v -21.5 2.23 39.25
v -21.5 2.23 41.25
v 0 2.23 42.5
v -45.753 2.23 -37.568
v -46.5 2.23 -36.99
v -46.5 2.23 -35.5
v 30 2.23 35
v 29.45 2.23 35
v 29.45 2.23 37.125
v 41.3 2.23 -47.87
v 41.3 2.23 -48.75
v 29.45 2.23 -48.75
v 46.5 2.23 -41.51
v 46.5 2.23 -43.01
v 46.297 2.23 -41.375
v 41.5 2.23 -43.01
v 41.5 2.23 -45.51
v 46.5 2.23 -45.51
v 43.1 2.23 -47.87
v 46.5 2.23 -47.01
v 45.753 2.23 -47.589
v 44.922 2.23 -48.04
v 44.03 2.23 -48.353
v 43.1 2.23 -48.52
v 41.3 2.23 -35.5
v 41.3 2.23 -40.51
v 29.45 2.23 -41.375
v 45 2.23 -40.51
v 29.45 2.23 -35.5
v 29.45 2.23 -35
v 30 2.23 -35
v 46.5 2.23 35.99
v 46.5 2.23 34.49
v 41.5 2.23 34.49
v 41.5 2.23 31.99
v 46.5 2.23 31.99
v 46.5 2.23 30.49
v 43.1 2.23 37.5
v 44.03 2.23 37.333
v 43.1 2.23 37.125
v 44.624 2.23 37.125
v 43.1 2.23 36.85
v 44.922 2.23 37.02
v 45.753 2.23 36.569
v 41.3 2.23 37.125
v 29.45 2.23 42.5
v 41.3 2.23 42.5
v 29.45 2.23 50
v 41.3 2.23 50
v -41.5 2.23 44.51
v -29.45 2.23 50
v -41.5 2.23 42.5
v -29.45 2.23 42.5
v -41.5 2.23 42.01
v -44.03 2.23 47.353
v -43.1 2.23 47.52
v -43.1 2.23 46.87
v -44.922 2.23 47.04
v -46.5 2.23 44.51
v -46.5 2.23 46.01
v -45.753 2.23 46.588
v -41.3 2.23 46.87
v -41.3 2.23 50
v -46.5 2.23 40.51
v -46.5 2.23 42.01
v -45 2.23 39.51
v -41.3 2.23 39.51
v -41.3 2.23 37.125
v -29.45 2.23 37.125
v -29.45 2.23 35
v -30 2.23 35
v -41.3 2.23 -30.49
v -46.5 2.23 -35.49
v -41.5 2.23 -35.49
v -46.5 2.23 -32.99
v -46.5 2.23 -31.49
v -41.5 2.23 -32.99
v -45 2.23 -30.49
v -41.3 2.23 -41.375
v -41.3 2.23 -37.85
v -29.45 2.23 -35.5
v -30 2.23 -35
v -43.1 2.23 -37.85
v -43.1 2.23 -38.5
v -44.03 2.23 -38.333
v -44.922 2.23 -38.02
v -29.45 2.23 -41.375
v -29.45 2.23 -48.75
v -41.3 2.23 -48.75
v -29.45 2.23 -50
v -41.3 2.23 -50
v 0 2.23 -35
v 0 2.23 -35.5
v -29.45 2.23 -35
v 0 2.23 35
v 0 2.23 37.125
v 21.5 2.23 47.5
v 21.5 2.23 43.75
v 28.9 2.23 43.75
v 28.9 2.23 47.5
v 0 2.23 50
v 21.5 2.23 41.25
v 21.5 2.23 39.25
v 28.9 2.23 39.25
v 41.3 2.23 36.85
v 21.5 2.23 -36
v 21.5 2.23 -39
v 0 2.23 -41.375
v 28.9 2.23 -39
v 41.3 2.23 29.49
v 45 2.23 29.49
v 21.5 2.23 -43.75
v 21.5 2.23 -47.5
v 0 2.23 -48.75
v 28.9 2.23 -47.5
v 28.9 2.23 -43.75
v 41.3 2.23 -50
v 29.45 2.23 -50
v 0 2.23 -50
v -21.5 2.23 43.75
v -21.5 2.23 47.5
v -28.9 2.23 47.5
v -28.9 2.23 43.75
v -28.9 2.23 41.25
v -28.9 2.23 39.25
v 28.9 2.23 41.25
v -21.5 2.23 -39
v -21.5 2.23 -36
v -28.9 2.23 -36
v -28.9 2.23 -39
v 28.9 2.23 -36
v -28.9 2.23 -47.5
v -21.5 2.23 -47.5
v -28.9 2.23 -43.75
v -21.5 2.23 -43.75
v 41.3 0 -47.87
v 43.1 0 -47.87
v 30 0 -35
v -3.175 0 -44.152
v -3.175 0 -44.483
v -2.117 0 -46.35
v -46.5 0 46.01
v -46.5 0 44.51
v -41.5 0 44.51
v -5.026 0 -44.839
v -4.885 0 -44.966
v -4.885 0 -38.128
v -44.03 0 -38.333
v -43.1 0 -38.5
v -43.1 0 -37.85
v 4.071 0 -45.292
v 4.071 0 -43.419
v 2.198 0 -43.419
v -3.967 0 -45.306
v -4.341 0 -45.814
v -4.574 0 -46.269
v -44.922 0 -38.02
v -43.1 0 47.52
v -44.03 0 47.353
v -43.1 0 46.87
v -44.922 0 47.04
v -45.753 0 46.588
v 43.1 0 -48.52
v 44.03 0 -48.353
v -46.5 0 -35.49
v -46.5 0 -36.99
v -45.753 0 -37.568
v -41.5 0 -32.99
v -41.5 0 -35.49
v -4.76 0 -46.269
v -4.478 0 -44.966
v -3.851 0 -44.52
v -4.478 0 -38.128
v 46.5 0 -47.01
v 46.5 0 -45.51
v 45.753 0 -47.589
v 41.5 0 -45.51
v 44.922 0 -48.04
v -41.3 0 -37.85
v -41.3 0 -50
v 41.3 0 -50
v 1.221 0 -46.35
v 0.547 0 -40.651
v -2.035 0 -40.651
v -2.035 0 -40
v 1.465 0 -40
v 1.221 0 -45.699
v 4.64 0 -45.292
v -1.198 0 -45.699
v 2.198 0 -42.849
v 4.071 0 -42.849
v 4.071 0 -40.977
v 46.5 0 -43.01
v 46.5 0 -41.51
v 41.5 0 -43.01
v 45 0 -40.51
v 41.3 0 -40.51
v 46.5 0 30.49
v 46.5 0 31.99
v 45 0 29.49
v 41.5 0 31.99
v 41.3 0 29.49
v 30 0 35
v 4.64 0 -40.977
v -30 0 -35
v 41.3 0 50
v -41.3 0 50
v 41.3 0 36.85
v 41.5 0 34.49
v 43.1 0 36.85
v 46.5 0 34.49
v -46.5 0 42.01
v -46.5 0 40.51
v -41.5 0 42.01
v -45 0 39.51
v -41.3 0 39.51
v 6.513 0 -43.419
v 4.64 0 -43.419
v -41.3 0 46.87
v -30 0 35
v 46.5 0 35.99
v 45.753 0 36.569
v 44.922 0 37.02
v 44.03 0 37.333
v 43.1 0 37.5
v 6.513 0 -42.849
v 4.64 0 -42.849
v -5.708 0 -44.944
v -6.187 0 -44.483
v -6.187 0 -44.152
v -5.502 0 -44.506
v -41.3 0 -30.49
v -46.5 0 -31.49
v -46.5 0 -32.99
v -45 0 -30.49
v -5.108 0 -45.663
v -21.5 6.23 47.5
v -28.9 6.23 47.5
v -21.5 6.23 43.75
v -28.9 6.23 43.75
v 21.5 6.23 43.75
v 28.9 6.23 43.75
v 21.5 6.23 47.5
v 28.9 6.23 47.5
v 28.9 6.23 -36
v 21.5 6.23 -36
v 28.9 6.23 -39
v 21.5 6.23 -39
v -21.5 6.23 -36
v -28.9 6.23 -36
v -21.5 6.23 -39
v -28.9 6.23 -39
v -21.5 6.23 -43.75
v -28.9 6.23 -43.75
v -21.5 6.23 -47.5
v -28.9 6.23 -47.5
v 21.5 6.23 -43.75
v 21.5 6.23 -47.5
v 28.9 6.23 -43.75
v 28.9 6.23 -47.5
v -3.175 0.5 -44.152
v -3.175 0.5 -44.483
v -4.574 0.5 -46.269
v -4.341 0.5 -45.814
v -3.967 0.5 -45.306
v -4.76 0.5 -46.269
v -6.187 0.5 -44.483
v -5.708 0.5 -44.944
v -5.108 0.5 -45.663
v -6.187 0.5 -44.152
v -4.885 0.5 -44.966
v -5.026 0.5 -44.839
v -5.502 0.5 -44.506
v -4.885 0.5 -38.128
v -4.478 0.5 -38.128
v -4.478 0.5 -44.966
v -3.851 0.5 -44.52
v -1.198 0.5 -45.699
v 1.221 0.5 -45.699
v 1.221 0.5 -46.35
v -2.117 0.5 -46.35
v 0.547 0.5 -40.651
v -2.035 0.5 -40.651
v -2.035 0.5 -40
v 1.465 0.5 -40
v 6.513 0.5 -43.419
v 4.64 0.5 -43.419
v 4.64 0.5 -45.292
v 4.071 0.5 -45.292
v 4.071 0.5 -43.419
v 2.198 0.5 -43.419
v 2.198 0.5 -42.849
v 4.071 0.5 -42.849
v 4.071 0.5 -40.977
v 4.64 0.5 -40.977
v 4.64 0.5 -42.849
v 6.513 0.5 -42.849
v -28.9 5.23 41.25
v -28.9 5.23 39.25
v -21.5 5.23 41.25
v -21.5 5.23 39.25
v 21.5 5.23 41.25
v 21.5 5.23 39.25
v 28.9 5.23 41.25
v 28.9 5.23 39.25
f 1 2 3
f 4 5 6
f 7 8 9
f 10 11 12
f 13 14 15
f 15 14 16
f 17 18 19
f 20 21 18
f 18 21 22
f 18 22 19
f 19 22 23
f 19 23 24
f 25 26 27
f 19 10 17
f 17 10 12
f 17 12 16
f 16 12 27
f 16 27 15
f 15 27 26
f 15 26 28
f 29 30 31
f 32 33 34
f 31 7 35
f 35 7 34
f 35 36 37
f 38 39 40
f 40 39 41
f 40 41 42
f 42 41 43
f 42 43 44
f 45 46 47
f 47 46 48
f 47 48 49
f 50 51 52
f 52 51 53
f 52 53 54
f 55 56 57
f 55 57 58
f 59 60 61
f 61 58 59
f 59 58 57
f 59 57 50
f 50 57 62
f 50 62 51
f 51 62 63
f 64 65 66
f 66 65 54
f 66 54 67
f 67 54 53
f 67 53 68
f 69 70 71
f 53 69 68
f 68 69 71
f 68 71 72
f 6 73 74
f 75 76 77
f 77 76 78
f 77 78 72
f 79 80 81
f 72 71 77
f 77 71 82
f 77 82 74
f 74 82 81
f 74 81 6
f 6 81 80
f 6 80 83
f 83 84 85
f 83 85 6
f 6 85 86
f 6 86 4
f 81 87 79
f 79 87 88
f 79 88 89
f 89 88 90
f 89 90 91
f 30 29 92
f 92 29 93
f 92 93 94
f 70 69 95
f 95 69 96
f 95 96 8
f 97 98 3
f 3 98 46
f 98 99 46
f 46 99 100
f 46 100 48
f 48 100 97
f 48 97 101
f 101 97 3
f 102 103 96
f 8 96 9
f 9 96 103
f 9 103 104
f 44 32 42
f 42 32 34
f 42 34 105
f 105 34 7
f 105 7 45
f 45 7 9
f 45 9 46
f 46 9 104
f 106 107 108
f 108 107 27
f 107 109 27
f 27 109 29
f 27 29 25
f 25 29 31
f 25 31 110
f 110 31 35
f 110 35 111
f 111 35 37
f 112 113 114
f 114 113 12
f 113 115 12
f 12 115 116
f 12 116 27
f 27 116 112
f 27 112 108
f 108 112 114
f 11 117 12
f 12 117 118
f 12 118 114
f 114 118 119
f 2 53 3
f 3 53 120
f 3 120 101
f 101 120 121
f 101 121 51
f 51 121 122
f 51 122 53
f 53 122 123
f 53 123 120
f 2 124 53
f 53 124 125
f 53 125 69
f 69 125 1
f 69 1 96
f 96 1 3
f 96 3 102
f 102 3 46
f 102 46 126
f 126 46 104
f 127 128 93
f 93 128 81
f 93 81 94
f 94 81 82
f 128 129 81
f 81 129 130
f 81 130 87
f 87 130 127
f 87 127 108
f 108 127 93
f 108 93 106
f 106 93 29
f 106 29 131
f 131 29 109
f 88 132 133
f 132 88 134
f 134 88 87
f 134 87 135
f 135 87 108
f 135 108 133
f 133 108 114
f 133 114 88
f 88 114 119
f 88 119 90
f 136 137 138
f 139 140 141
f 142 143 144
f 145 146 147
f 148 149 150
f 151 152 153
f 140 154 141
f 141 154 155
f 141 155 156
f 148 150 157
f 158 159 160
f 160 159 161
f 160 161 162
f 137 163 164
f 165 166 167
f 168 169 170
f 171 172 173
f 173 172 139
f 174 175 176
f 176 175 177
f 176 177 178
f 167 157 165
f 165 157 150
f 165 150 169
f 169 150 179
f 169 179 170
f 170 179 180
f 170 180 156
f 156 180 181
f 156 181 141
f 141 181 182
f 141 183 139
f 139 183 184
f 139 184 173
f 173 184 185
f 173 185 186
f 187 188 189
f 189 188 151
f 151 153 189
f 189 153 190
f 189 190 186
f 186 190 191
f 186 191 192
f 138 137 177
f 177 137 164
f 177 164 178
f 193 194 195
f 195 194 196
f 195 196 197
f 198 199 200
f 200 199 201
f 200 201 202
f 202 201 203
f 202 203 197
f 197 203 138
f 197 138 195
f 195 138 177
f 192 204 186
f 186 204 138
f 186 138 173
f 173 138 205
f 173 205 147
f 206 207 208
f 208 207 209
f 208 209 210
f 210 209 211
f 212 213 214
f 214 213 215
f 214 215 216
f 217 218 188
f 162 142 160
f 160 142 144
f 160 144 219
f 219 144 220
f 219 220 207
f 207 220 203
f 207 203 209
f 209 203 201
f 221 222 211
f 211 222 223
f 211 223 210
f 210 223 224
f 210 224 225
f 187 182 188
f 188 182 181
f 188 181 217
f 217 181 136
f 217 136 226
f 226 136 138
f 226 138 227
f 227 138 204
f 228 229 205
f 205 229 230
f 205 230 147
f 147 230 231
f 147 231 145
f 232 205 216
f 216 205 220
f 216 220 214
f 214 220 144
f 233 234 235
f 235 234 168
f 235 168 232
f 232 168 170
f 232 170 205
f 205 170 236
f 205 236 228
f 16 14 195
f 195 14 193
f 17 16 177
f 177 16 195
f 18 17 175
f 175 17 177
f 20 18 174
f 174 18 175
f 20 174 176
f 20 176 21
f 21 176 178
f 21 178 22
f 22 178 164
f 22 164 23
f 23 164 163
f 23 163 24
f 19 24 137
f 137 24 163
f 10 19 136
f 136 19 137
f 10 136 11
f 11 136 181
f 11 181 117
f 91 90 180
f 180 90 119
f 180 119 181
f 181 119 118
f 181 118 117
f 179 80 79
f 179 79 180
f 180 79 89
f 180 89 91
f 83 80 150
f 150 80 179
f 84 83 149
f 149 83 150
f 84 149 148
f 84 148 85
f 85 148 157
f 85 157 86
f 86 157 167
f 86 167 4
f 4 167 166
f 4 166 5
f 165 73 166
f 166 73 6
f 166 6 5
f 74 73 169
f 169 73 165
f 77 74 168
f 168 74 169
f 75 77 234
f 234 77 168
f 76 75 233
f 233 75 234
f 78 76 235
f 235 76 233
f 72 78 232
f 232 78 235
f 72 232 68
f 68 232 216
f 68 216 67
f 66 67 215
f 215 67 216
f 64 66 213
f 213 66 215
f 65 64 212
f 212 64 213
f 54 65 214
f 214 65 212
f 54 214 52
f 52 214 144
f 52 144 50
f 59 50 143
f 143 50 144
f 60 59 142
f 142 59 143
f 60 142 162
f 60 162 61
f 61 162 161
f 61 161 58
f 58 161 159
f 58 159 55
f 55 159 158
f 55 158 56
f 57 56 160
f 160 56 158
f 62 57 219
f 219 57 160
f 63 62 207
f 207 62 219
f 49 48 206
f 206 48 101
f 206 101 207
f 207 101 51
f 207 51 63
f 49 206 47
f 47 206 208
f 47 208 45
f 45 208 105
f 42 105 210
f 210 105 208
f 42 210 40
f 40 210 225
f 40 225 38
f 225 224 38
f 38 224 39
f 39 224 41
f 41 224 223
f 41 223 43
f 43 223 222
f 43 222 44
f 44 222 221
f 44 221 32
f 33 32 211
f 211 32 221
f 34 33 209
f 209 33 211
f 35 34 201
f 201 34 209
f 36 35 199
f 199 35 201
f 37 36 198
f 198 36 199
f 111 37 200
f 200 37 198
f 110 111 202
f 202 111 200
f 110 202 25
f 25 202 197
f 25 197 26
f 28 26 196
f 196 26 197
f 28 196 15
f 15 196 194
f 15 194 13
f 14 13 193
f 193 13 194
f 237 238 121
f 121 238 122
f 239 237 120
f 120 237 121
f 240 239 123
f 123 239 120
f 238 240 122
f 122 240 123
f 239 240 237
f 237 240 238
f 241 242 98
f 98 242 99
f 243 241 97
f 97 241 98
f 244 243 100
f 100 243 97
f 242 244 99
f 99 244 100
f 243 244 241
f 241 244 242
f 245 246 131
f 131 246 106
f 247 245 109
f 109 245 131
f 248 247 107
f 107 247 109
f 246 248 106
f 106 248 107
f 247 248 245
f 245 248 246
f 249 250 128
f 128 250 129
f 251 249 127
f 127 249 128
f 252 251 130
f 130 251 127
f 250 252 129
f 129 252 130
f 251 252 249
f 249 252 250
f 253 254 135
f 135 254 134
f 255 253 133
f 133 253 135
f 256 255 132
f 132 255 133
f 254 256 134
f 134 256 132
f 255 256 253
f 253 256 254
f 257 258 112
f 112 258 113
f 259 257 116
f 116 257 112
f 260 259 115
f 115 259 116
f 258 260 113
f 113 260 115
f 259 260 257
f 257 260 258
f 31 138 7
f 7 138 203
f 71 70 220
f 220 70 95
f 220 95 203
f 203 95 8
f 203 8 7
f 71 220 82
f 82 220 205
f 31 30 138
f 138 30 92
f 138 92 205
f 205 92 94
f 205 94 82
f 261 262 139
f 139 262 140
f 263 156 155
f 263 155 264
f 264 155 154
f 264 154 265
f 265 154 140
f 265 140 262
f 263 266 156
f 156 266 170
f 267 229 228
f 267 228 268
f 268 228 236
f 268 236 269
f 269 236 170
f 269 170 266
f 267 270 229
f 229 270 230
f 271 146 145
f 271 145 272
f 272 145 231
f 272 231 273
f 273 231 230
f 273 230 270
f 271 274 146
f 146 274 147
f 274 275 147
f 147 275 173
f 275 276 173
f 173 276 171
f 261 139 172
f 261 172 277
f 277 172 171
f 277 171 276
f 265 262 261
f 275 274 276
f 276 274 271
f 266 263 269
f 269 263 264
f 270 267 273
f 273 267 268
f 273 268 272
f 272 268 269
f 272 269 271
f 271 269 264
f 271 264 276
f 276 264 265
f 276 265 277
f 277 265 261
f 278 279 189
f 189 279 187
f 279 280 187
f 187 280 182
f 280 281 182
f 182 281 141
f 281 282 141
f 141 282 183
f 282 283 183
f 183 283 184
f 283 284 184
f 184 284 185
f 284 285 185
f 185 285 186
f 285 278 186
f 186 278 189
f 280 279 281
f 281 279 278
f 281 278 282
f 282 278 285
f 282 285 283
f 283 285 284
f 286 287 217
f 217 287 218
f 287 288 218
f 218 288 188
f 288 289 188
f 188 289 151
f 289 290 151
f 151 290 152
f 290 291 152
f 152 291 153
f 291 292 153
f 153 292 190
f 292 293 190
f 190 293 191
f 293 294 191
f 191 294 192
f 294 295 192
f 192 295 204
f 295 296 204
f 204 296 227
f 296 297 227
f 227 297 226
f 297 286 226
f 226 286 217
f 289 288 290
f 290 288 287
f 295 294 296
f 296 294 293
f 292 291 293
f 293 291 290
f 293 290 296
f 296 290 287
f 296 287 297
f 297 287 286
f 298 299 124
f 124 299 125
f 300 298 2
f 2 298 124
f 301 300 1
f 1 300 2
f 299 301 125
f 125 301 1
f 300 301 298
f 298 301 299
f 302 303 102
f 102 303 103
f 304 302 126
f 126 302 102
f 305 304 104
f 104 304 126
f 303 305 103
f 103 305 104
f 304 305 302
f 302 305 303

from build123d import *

# Parameters (mm, degrees)
SKETCH1_W           = 0.2
SKETCH1_H           = 2.5
SKETCH1_W_2         = 82.6
SKETCH1_H_2         = 100
BOSS_EXTRUDE1_DEPTH = 2.23
SKETCH2_W           = 7.4
SKETCH2_H           = 3.75
SKETCH2_H_2         = 3
BOSS_EXTRUDE2_DEPTH = 4
SKETCH3_W           = 60
SKETCH3_H           = 70
CUT_EXTRUDE1_DEPTH  = 10
CUT_EXTRUDE2_DEPTH  = 0.5
SKETCH5_W           = 7.4
SKETCH5_H           = 2
BOSS_EXTRUDE3_DEPTH = 3


with BuildPart() as part:
    # Sketch1 → Boss-Extrude1 (new body)
    with BuildSketch(Plane(origin=(0, 0, 0), x_dir=(1, 0, 0), z_dir=(0, 1, 0))):
        with BuildLine():
            Line((43.1, -36.85), (43.1, -37.5))
            ThreePointArc((43.1, -37.5), (44.922195524, -37.020142239), (46.5, -35.99))
            Line((46.5, -35.99), (46.5, -34.49))
            Line((46.5, -34.49), (43.1, -34.49))
            Line((43.1, -34.49), (43.1, -36.85))
        make_face()
        Polygon((41.5, -34.49), (41.3, -34.49), (41.3, -36.85), (43.1, -36.85), (43.1, -34.49), align=None)
        Polygon((45, -29.49), (41.3, -29.49), (41.3, -31.99), (41.5, -31.99), (46.5, -31.99), (46.5, -30.49), align=None)
        with Locations((41.4, -33.24)):
            Rectangle(SKETCH1_W, SKETCH1_H)
        Rectangle(SKETCH1_W_2, SKETCH1_H_2)
        Polygon((46.5, 43.01), (41.5, 43.01), (41.3, 43.01), (41.3, 40.51), (45, 40.51), (46.5, 41.51), align=None)
        with Locations((41.4, 44.26)):
            Rectangle(SKETCH1_W, SKETCH1_H)
        Polygon((41.5, 45.51), (43.1, 45.51), (43.1, 47.87), (41.3, 47.87), (41.3, 45.51), align=None)
        with BuildLine():
            ThreePointArc((43.1, 48.52), (44.922195524, 48.040142239), (46.5, 47.01))
            Line((46.5, 47.01), (46.5, 45.51))
            Line((46.5, 45.51), (43.1, 45.51))
            Line((43.1, 45.51), (43.1, 47.87))
            Line((43.1, 47.87), (43.1, 48.52))
        make_face()
        with BuildLine():
            Line((-43.1, -46.87), (-41.3, -46.87))
            Line((-41.3, -46.87), (-41.3, -44.51))
            Line((-41.3, -44.51), (-41.5, -44.51))
            Line((-41.5, -44.51), (-46.5, -44.51))
            Line((-46.5, -44.51), (-46.5, -46.01))
            ThreePointArc((-46.5, -46.01), (-44.922195524, -47.040142239), (-43.1, -47.52))
            Line((-43.1, -47.52), (-43.1, -46.87))
        make_face()
        Polygon((-41.3, -44.51), (-41.3, -39.51), (-45, -39.51), (-46.5, -40.51), (-46.5, -42.01), (-41.5, -42.01), (-41.5, -44.51), align=None)
        Polygon((-41.3, 30.49), (-41.3, 35.49), (-41.5, 35.49), (-41.5, 32.99), (-46.5, 32.99), (-46.5, 31.49), (-45, 30.49), align=None)
        with BuildLine():
            Line((-41.3, 35.49), (-41.3, 37.85))
            Line((-41.3, 37.85), (-43.1, 37.85))
            Line((-43.1, 37.85), (-43.1, 38.5))
            ThreePointArc((-43.1, 38.5), (-44.922195524, 38.020142239), (-46.5, 36.99))
            Line((-46.5, 36.99), (-46.5, 35.49))
            Line((-46.5, 35.49), (-41.5, 35.49))
            Line((-41.5, 35.49), (-41.3, 35.49))
        make_face()
    extrude(amount=BOSS_EXTRUDE1_DEPTH)

    # Sketch2 → Boss-Extrude2 (add)
    with BuildSketch(Plane(origin=(0, 2.23, 0), x_dir=(1, 0, 0), z_dir=(0, 1, 0))):
        with Locations((-25.2, -45.625)):
            Rectangle(SKETCH2_W, SKETCH2_H)
        with Locations((25.2, -45.625)):
            Rectangle(SKETCH2_W, SKETCH2_H)
        with Locations((25.2, 45.625)):
            Rectangle(SKETCH2_W, SKETCH2_H)
        with Locations((-25.2, 45.625)):
            Rectangle(SKETCH2_W, SKETCH2_H)
        with Locations((-25.2, 37.5)):
            Rectangle(SKETCH2_W, SKETCH2_H_2)
        with Locations((25.2, 37.5)):
            Rectangle(SKETCH2_W, SKETCH2_H_2)
    extrude(amount=BOSS_EXTRUDE2_DEPTH)

    # Sketch3 → Cut-Extrude1 (cut)
    with BuildSketch(Plane(origin=(0, 2.23, 0), x_dir=(1, 0, 0), z_dir=(0, 1, 0))):
        Rectangle(SKETCH3_W, SKETCH3_H)
    extrude(amount=-CUT_EXTRUDE1_DEPTH, mode=Mode.SUBTRACT)

    # Sketch4 → Cut-Extrude2 (cut)
    with BuildSketch(Plane.XZ):
        Polygon((4.640384615, -43.419230769), (4.640384615, -45.291666667), (4.070512821, -45.291666667), (4.070512821, -43.419230769), (2.198076923, -43.419230769), (2.198076923, -42.849358974), (4.070512821, -42.849358974), (4.070512821, -40.976923077), (4.640384615, -40.976923077), (4.640384615, -42.849358974), (6.512820513, -42.849358974), (6.512820513, -43.419230769), align=None)
        Polygon((1.221153846, -45.698717949), (1.221153846, -46.35), (-2.116666667, -46.35), (0.54697516, -40.651282051), (-2.03525641, -40.651282051), (-2.03525641, -40), (1.465384615, -40), (-1.198257212, -45.698717949), align=None)
        with BuildLine():
            add(Edge.make_bspline(
                [(-3.175, -44.482652244), (-3.262918211, -44.565594294), (-3.433284709, -44.726318068), (-3.671176807, -44.969181062), (-3.884395029, -45.204215059), (-4.071386431, -45.432230465), (-4.235563138, -45.650653984), (-4.373446797, -45.862117777), (-4.487450991, -46.065713922), (-4.546079998, -46.202765549), (-4.574238782, -46.268589744)],
                knots=[0, 0, 0, 0, 0.000362575, 0.000702591, 0.001019617, 0.001314251, 0.001586978, 0.001838892, 0.00207117, 0.002285828, 0.002285828, 0.002285828, 0.002285828], degree=3))
            Line((-4.574238782, -46.268589744), (-4.759955929, -46.268589744))
            add(Edge.make_bspline(
                [(-4.759955929, -46.268589744), (-4.792788221, -46.198486652), (-4.860615985, -46.053661673), (-4.986779978, -45.841364869), (-5.132525091, -45.623706079), (-5.300867212, -45.402881295), (-5.491310702, -45.177687257), (-5.702118152, -44.94759275), (-5.93585869, -44.714525691), (-6.101847246, -44.561381426), (-6.187179487, -44.482652244)],
                knots=[0, 0, 0, 0, 0.000232111, 0.000479514, 0.000739881, 0.001017698, 0.001312003, 0.001624408, 0.001953613, 0.002301902, 0.002301902, 0.002301902, 0.002301902], degree=3))
            Line((-6.187179487, -44.482652244), (-6.187179487, -44.151923077))
            add(Edge.make_bspline(
                [(-6.187179487, -44.151923077), (-6.116537815, -44.184471117), (-5.978890638, -44.247891839), (-5.781903944, -44.34935602), (-5.597143614, -44.448436612), (-5.427913951, -44.551377879), (-5.270864773, -44.651733434), (-5.129759329, -44.755968393), (-5.000056754, -44.857829341), (-4.922299946, -44.930706152), (-4.884615385, -44.966025641)],
                knots=[0, 0, 0, 0, 0.000233307, 0.000454604, 0.000664648, 0.000862076, 0.001048719, 0.001223511, 0.001388199, 0.001543075, 0.001543075, 0.001543075, 0.001543075], degree=3))
            Line((-4.884615385, -44.966025641), (-4.884615385, -38.127564103))
            Line((-4.884615385, -38.127564103), (-4.477564103, -38.127564103))
            Line((-4.477564103, -38.127564103), (-4.477564103, -44.966025641))
            add(Edge.make_bspline(
                [(-4.477564103, -44.966025641), (-4.378031962, -44.888388472), (-4.177950241, -44.732320508), (-3.858882125, -44.521130617), (-3.525108924, -44.32477265), (-3.292360048, -44.209864), (-3.175, -44.151923077)],
                knots=[0, 0, 0, 0, 0.000378565, 0.000760999, 0.001146938, 0.001539469, 0.001539469, 0.001539469, 0.001539469], degree=3))
            Line((-3.175, -44.151923077), (-3.175, -44.482652244))
        make_face()
    extrude(amount=-CUT_EXTRUDE2_DEPTH, mode=Mode.SUBTRACT)

    # Sketch5 → Boss-Extrude3 (add)
    with BuildSketch(Plane(origin=(0, 2.23, 0), x_dir=(1, 0, 0), z_dir=(0, 1, 0))):
        with Locations((-25.2, -40.25)):
            Rectangle(SKETCH5_W, SKETCH5_H)
        with Locations((25.2, -40.25)):
            Rectangle(SKETCH5_W, SKETCH5_H)
    extrude(amount=BOSS_EXTRUDE3_DEPTH)


solid = part.part
